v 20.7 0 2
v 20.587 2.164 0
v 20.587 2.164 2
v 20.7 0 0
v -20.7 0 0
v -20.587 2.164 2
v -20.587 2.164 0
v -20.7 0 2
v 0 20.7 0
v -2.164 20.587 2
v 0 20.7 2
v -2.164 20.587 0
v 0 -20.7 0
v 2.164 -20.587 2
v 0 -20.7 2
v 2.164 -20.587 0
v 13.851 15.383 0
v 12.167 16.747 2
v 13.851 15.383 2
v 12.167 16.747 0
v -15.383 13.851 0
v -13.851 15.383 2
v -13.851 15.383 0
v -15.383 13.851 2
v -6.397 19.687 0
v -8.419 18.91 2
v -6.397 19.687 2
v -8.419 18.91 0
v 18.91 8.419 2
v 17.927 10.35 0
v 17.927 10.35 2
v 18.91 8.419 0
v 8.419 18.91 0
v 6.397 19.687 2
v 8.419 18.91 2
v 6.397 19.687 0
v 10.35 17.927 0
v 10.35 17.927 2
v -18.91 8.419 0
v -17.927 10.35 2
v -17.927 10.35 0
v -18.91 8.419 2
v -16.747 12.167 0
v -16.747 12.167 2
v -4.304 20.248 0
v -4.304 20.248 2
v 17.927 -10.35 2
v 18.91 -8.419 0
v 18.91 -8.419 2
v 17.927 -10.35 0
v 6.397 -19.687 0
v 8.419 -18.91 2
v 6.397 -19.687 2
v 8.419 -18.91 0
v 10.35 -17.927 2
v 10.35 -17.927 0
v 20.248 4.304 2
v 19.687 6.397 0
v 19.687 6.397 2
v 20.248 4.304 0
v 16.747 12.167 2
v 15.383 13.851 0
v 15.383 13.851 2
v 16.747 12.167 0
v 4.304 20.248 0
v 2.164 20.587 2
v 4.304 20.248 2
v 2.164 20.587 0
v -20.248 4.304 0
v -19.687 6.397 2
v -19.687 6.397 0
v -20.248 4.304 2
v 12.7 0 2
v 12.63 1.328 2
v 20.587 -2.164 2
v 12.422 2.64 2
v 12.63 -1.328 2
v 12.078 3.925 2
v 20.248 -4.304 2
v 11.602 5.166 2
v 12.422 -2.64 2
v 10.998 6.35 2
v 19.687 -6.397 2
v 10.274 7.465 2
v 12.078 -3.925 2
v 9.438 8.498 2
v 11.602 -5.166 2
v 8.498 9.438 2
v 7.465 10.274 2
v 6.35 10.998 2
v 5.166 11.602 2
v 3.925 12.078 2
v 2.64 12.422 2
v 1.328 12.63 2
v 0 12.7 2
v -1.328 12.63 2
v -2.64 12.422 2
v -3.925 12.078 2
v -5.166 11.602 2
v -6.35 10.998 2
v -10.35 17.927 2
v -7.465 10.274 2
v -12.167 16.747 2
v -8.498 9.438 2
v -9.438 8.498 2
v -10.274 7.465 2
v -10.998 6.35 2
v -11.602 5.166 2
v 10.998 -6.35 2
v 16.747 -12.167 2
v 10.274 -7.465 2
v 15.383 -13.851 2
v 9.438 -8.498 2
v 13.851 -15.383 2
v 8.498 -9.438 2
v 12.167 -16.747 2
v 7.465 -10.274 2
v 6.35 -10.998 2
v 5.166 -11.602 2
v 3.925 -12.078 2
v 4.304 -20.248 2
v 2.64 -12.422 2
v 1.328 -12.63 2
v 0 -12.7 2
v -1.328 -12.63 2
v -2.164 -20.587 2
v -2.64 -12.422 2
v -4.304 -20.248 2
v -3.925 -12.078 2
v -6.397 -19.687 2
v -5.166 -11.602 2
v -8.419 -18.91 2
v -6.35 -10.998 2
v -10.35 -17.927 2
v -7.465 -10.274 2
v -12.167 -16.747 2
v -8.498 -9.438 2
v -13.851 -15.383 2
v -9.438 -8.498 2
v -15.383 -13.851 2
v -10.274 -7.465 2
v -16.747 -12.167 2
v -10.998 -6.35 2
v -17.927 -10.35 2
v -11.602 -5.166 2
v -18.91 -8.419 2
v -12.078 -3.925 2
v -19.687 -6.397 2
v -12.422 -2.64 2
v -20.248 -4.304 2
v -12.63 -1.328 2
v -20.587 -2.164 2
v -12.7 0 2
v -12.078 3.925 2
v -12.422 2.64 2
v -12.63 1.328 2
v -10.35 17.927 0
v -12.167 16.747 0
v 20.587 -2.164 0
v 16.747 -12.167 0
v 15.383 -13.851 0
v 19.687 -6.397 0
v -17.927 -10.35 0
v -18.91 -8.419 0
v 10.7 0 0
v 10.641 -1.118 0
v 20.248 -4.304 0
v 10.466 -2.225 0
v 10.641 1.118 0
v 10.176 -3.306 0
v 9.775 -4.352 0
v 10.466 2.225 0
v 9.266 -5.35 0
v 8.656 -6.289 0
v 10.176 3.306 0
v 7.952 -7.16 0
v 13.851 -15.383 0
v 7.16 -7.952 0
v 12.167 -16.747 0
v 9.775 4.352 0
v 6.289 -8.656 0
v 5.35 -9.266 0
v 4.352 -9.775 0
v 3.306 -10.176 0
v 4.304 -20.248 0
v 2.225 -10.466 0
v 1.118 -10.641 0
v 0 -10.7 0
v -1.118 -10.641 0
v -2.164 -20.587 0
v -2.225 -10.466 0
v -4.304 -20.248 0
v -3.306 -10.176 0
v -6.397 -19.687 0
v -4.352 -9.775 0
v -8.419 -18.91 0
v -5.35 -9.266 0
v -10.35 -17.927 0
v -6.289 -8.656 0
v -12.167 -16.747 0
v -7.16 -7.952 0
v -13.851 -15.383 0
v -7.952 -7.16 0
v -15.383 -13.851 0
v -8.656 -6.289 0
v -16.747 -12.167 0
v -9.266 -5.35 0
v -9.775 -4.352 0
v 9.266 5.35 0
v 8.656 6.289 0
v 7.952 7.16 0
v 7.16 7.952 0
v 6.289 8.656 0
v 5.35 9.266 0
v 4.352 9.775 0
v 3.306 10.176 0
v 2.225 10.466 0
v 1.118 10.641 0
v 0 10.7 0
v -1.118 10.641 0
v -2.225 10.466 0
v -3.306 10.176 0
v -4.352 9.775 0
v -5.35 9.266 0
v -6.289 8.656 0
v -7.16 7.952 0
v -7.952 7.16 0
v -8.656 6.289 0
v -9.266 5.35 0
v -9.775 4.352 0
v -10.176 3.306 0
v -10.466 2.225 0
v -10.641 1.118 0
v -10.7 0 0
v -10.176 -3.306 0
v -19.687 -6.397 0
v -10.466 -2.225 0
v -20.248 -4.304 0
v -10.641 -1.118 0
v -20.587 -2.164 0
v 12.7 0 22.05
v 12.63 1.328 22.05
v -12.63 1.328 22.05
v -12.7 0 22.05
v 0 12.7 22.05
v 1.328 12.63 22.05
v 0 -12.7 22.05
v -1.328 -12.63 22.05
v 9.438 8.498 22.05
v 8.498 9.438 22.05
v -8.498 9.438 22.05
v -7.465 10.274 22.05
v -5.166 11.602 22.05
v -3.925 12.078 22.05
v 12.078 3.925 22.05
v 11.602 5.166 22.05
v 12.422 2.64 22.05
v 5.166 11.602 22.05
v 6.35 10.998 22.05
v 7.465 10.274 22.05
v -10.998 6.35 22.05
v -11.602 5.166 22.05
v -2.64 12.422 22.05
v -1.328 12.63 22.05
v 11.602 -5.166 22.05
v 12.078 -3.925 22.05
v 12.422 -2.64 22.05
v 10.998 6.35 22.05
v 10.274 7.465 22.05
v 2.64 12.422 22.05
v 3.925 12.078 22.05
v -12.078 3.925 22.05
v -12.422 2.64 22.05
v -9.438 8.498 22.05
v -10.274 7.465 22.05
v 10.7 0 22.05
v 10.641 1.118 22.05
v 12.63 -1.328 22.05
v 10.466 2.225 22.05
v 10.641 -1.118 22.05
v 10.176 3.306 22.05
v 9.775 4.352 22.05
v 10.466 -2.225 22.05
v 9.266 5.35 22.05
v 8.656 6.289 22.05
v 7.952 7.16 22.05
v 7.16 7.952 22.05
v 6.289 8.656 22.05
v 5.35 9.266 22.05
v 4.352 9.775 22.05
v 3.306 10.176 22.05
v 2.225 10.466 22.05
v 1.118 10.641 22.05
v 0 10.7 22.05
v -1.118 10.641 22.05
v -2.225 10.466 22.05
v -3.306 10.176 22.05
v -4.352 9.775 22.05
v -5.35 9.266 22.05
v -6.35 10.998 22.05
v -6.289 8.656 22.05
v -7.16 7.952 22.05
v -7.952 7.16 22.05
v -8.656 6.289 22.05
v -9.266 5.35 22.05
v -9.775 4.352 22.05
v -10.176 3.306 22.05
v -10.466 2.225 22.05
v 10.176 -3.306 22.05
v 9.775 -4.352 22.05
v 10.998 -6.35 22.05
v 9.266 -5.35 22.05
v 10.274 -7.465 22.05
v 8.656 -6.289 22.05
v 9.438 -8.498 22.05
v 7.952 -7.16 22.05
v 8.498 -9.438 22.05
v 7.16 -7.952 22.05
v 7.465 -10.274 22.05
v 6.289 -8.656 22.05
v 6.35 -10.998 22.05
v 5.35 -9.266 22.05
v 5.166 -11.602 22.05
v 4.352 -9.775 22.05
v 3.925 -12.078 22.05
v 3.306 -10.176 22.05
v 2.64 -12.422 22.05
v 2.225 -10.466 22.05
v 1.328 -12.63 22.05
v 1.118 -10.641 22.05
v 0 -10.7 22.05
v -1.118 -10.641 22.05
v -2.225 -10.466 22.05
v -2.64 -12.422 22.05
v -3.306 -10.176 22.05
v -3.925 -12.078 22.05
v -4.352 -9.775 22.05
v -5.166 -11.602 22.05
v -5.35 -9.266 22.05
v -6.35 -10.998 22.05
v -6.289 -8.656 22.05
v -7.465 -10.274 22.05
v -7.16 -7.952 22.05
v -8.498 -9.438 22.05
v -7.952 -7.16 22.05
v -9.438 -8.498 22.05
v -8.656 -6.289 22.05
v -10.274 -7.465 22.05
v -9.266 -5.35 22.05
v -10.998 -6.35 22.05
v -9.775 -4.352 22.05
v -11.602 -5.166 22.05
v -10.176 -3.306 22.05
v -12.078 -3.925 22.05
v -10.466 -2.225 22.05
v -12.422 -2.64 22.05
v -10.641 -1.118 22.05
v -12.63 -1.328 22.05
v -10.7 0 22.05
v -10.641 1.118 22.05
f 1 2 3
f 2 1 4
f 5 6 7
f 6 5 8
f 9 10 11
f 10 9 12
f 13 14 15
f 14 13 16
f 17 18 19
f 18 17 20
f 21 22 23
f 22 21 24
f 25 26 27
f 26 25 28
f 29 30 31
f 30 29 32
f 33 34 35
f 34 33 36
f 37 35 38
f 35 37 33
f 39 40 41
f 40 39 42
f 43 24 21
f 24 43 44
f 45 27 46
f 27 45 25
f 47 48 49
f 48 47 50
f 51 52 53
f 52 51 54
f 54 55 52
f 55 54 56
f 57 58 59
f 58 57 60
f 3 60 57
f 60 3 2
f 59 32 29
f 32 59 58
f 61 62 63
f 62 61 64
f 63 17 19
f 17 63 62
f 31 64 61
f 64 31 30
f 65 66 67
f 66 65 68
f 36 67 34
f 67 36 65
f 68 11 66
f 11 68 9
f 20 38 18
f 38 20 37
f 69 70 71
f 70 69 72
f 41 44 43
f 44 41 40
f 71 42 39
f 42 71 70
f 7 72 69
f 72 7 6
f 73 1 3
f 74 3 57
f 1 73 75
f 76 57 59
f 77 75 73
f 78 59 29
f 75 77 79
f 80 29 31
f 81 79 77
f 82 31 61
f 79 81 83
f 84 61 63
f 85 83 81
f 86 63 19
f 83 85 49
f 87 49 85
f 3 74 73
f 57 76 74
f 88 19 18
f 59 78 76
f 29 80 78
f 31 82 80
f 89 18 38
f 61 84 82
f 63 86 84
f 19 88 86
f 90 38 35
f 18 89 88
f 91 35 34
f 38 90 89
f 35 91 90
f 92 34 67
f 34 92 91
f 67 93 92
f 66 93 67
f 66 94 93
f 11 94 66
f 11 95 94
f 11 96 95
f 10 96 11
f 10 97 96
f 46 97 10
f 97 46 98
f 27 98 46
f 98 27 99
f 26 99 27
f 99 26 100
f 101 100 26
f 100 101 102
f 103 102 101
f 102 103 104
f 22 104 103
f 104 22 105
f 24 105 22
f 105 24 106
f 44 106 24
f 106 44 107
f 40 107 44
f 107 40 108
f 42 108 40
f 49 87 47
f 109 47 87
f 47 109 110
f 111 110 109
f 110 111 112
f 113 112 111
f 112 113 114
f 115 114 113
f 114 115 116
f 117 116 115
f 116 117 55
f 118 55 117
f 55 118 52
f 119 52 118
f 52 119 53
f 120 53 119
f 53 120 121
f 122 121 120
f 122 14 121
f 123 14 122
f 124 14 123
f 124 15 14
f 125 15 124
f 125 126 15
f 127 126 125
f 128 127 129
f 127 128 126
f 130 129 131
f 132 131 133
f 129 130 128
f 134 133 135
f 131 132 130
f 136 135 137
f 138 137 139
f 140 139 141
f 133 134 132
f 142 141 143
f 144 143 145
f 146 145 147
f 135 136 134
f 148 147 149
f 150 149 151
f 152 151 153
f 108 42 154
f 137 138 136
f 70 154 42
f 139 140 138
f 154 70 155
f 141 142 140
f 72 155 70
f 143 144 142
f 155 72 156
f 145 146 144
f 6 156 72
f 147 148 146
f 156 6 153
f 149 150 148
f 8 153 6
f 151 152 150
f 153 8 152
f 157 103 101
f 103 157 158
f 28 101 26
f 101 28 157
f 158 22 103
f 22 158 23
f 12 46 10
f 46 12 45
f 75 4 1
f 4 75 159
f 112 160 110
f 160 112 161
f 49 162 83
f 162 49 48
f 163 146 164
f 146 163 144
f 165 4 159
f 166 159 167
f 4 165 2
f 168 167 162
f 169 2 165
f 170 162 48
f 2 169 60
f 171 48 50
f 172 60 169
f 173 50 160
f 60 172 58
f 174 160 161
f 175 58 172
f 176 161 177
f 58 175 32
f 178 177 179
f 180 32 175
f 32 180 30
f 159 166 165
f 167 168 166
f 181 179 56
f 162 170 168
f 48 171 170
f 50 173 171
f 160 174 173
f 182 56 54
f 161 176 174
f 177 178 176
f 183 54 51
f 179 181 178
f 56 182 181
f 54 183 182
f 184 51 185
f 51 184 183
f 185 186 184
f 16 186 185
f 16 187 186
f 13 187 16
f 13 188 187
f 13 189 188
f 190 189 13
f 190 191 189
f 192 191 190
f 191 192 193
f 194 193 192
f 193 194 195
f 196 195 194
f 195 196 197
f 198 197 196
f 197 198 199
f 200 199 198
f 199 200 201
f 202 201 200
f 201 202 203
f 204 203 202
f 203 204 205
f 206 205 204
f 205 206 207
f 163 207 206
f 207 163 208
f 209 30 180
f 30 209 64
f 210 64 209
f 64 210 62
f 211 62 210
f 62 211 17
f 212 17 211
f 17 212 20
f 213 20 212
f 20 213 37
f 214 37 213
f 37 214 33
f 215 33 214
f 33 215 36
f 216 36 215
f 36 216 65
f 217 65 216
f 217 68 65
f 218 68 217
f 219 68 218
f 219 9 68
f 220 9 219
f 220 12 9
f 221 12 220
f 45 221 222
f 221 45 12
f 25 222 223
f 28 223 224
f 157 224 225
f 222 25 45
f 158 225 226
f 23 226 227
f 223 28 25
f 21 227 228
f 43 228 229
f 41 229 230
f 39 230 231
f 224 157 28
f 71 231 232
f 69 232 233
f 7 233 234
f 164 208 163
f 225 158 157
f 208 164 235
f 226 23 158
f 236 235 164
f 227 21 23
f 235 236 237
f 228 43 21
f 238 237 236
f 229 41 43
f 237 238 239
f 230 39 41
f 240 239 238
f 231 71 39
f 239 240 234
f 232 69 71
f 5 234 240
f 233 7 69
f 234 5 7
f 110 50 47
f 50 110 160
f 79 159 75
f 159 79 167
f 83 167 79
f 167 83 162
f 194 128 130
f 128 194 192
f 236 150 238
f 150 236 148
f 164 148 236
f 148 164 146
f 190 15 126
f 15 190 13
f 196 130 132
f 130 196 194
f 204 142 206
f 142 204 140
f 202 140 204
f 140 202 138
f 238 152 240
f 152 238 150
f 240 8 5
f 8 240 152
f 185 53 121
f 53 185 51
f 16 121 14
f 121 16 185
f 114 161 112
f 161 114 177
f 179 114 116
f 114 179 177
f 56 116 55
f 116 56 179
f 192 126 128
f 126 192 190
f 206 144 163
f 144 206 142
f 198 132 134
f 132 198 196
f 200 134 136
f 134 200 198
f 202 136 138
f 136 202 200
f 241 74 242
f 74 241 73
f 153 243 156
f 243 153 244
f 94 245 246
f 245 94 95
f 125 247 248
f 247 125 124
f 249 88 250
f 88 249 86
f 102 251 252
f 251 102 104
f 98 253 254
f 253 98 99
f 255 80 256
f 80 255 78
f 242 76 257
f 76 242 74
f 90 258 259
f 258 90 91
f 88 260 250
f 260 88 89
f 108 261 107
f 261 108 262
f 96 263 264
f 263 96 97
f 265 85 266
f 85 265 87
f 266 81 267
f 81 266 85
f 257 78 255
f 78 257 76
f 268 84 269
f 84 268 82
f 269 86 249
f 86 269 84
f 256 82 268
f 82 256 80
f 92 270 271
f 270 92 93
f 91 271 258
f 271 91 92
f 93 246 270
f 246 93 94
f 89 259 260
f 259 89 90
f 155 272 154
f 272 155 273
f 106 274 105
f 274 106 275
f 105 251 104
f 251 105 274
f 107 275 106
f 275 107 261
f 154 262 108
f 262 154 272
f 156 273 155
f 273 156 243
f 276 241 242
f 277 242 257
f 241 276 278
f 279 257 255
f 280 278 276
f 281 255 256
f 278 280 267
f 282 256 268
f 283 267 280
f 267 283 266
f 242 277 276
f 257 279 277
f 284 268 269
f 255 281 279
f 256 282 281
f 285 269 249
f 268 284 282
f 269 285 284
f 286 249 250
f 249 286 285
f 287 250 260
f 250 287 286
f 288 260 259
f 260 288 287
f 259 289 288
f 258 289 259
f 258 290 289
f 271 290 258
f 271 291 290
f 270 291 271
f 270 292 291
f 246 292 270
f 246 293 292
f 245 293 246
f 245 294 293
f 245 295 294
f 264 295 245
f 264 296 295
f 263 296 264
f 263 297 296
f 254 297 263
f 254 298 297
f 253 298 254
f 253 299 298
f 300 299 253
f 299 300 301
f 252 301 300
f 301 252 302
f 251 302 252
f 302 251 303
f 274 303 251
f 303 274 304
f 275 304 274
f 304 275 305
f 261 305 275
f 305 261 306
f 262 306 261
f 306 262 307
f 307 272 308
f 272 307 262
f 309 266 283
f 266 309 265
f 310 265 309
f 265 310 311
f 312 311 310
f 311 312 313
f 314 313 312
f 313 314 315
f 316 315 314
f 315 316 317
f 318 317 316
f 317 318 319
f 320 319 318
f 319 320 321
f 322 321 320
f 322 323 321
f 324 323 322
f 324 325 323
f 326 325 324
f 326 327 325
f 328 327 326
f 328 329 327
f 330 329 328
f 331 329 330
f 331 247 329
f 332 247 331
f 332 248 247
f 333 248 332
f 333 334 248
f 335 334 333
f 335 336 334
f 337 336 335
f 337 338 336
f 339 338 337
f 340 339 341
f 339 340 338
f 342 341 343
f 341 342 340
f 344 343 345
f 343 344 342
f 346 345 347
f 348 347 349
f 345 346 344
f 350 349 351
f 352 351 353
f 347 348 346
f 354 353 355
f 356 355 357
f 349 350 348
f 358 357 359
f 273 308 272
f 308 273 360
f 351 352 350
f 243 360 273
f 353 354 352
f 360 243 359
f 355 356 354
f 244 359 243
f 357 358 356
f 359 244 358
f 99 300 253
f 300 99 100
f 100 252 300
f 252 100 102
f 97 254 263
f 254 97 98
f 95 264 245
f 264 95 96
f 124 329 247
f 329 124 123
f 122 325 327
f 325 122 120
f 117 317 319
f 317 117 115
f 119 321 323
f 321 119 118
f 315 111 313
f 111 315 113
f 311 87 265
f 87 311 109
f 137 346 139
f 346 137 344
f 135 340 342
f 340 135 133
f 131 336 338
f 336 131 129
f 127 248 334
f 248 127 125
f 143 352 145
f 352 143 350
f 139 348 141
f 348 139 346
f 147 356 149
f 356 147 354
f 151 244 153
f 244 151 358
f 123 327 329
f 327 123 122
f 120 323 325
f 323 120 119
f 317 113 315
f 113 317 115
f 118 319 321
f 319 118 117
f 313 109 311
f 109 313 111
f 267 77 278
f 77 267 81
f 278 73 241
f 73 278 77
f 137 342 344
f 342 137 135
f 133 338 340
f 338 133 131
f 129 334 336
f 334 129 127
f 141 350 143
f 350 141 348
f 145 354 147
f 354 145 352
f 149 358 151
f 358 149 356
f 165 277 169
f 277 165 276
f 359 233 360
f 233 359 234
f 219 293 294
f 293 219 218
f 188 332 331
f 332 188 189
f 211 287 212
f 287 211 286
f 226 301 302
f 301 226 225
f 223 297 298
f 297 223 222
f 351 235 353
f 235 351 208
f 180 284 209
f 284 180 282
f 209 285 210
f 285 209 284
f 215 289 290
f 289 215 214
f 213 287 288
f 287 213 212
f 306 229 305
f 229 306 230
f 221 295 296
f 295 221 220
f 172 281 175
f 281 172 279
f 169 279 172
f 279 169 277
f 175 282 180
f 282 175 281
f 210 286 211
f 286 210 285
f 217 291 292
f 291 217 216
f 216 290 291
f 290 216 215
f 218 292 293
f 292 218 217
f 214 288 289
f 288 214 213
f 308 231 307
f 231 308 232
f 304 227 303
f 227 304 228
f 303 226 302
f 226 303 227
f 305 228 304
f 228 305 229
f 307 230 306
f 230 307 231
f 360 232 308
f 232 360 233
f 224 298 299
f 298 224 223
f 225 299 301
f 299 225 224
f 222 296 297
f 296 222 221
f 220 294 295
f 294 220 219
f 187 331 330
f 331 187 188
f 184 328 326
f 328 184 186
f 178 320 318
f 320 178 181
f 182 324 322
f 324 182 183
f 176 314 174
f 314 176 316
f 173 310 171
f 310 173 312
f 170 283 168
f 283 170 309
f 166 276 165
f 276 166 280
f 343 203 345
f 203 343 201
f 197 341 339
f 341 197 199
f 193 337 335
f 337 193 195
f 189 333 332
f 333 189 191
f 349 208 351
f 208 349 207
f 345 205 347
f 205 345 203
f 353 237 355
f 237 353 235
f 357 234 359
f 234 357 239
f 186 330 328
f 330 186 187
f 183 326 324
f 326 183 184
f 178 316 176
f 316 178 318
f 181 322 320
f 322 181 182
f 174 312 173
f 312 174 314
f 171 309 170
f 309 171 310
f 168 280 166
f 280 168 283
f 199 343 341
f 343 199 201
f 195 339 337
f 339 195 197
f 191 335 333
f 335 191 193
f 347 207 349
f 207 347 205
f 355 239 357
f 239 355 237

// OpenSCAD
difference(){
	union() {
		union() {
			cylinder($fn = 60, h = 2, r = 20.7000000000);
			cylinder($fn = 60, h = 22.0500000000, r = 12.7000000000);
		}
	}
	/* Holes Below*/
	union(){
		union(){
			translate(v = [0, 0, -1]) {
				cylinder($fn = 60, h = 24.0500000000, r = 10.7000000000);
			}
		}
	} /* End Holes */ 
}
